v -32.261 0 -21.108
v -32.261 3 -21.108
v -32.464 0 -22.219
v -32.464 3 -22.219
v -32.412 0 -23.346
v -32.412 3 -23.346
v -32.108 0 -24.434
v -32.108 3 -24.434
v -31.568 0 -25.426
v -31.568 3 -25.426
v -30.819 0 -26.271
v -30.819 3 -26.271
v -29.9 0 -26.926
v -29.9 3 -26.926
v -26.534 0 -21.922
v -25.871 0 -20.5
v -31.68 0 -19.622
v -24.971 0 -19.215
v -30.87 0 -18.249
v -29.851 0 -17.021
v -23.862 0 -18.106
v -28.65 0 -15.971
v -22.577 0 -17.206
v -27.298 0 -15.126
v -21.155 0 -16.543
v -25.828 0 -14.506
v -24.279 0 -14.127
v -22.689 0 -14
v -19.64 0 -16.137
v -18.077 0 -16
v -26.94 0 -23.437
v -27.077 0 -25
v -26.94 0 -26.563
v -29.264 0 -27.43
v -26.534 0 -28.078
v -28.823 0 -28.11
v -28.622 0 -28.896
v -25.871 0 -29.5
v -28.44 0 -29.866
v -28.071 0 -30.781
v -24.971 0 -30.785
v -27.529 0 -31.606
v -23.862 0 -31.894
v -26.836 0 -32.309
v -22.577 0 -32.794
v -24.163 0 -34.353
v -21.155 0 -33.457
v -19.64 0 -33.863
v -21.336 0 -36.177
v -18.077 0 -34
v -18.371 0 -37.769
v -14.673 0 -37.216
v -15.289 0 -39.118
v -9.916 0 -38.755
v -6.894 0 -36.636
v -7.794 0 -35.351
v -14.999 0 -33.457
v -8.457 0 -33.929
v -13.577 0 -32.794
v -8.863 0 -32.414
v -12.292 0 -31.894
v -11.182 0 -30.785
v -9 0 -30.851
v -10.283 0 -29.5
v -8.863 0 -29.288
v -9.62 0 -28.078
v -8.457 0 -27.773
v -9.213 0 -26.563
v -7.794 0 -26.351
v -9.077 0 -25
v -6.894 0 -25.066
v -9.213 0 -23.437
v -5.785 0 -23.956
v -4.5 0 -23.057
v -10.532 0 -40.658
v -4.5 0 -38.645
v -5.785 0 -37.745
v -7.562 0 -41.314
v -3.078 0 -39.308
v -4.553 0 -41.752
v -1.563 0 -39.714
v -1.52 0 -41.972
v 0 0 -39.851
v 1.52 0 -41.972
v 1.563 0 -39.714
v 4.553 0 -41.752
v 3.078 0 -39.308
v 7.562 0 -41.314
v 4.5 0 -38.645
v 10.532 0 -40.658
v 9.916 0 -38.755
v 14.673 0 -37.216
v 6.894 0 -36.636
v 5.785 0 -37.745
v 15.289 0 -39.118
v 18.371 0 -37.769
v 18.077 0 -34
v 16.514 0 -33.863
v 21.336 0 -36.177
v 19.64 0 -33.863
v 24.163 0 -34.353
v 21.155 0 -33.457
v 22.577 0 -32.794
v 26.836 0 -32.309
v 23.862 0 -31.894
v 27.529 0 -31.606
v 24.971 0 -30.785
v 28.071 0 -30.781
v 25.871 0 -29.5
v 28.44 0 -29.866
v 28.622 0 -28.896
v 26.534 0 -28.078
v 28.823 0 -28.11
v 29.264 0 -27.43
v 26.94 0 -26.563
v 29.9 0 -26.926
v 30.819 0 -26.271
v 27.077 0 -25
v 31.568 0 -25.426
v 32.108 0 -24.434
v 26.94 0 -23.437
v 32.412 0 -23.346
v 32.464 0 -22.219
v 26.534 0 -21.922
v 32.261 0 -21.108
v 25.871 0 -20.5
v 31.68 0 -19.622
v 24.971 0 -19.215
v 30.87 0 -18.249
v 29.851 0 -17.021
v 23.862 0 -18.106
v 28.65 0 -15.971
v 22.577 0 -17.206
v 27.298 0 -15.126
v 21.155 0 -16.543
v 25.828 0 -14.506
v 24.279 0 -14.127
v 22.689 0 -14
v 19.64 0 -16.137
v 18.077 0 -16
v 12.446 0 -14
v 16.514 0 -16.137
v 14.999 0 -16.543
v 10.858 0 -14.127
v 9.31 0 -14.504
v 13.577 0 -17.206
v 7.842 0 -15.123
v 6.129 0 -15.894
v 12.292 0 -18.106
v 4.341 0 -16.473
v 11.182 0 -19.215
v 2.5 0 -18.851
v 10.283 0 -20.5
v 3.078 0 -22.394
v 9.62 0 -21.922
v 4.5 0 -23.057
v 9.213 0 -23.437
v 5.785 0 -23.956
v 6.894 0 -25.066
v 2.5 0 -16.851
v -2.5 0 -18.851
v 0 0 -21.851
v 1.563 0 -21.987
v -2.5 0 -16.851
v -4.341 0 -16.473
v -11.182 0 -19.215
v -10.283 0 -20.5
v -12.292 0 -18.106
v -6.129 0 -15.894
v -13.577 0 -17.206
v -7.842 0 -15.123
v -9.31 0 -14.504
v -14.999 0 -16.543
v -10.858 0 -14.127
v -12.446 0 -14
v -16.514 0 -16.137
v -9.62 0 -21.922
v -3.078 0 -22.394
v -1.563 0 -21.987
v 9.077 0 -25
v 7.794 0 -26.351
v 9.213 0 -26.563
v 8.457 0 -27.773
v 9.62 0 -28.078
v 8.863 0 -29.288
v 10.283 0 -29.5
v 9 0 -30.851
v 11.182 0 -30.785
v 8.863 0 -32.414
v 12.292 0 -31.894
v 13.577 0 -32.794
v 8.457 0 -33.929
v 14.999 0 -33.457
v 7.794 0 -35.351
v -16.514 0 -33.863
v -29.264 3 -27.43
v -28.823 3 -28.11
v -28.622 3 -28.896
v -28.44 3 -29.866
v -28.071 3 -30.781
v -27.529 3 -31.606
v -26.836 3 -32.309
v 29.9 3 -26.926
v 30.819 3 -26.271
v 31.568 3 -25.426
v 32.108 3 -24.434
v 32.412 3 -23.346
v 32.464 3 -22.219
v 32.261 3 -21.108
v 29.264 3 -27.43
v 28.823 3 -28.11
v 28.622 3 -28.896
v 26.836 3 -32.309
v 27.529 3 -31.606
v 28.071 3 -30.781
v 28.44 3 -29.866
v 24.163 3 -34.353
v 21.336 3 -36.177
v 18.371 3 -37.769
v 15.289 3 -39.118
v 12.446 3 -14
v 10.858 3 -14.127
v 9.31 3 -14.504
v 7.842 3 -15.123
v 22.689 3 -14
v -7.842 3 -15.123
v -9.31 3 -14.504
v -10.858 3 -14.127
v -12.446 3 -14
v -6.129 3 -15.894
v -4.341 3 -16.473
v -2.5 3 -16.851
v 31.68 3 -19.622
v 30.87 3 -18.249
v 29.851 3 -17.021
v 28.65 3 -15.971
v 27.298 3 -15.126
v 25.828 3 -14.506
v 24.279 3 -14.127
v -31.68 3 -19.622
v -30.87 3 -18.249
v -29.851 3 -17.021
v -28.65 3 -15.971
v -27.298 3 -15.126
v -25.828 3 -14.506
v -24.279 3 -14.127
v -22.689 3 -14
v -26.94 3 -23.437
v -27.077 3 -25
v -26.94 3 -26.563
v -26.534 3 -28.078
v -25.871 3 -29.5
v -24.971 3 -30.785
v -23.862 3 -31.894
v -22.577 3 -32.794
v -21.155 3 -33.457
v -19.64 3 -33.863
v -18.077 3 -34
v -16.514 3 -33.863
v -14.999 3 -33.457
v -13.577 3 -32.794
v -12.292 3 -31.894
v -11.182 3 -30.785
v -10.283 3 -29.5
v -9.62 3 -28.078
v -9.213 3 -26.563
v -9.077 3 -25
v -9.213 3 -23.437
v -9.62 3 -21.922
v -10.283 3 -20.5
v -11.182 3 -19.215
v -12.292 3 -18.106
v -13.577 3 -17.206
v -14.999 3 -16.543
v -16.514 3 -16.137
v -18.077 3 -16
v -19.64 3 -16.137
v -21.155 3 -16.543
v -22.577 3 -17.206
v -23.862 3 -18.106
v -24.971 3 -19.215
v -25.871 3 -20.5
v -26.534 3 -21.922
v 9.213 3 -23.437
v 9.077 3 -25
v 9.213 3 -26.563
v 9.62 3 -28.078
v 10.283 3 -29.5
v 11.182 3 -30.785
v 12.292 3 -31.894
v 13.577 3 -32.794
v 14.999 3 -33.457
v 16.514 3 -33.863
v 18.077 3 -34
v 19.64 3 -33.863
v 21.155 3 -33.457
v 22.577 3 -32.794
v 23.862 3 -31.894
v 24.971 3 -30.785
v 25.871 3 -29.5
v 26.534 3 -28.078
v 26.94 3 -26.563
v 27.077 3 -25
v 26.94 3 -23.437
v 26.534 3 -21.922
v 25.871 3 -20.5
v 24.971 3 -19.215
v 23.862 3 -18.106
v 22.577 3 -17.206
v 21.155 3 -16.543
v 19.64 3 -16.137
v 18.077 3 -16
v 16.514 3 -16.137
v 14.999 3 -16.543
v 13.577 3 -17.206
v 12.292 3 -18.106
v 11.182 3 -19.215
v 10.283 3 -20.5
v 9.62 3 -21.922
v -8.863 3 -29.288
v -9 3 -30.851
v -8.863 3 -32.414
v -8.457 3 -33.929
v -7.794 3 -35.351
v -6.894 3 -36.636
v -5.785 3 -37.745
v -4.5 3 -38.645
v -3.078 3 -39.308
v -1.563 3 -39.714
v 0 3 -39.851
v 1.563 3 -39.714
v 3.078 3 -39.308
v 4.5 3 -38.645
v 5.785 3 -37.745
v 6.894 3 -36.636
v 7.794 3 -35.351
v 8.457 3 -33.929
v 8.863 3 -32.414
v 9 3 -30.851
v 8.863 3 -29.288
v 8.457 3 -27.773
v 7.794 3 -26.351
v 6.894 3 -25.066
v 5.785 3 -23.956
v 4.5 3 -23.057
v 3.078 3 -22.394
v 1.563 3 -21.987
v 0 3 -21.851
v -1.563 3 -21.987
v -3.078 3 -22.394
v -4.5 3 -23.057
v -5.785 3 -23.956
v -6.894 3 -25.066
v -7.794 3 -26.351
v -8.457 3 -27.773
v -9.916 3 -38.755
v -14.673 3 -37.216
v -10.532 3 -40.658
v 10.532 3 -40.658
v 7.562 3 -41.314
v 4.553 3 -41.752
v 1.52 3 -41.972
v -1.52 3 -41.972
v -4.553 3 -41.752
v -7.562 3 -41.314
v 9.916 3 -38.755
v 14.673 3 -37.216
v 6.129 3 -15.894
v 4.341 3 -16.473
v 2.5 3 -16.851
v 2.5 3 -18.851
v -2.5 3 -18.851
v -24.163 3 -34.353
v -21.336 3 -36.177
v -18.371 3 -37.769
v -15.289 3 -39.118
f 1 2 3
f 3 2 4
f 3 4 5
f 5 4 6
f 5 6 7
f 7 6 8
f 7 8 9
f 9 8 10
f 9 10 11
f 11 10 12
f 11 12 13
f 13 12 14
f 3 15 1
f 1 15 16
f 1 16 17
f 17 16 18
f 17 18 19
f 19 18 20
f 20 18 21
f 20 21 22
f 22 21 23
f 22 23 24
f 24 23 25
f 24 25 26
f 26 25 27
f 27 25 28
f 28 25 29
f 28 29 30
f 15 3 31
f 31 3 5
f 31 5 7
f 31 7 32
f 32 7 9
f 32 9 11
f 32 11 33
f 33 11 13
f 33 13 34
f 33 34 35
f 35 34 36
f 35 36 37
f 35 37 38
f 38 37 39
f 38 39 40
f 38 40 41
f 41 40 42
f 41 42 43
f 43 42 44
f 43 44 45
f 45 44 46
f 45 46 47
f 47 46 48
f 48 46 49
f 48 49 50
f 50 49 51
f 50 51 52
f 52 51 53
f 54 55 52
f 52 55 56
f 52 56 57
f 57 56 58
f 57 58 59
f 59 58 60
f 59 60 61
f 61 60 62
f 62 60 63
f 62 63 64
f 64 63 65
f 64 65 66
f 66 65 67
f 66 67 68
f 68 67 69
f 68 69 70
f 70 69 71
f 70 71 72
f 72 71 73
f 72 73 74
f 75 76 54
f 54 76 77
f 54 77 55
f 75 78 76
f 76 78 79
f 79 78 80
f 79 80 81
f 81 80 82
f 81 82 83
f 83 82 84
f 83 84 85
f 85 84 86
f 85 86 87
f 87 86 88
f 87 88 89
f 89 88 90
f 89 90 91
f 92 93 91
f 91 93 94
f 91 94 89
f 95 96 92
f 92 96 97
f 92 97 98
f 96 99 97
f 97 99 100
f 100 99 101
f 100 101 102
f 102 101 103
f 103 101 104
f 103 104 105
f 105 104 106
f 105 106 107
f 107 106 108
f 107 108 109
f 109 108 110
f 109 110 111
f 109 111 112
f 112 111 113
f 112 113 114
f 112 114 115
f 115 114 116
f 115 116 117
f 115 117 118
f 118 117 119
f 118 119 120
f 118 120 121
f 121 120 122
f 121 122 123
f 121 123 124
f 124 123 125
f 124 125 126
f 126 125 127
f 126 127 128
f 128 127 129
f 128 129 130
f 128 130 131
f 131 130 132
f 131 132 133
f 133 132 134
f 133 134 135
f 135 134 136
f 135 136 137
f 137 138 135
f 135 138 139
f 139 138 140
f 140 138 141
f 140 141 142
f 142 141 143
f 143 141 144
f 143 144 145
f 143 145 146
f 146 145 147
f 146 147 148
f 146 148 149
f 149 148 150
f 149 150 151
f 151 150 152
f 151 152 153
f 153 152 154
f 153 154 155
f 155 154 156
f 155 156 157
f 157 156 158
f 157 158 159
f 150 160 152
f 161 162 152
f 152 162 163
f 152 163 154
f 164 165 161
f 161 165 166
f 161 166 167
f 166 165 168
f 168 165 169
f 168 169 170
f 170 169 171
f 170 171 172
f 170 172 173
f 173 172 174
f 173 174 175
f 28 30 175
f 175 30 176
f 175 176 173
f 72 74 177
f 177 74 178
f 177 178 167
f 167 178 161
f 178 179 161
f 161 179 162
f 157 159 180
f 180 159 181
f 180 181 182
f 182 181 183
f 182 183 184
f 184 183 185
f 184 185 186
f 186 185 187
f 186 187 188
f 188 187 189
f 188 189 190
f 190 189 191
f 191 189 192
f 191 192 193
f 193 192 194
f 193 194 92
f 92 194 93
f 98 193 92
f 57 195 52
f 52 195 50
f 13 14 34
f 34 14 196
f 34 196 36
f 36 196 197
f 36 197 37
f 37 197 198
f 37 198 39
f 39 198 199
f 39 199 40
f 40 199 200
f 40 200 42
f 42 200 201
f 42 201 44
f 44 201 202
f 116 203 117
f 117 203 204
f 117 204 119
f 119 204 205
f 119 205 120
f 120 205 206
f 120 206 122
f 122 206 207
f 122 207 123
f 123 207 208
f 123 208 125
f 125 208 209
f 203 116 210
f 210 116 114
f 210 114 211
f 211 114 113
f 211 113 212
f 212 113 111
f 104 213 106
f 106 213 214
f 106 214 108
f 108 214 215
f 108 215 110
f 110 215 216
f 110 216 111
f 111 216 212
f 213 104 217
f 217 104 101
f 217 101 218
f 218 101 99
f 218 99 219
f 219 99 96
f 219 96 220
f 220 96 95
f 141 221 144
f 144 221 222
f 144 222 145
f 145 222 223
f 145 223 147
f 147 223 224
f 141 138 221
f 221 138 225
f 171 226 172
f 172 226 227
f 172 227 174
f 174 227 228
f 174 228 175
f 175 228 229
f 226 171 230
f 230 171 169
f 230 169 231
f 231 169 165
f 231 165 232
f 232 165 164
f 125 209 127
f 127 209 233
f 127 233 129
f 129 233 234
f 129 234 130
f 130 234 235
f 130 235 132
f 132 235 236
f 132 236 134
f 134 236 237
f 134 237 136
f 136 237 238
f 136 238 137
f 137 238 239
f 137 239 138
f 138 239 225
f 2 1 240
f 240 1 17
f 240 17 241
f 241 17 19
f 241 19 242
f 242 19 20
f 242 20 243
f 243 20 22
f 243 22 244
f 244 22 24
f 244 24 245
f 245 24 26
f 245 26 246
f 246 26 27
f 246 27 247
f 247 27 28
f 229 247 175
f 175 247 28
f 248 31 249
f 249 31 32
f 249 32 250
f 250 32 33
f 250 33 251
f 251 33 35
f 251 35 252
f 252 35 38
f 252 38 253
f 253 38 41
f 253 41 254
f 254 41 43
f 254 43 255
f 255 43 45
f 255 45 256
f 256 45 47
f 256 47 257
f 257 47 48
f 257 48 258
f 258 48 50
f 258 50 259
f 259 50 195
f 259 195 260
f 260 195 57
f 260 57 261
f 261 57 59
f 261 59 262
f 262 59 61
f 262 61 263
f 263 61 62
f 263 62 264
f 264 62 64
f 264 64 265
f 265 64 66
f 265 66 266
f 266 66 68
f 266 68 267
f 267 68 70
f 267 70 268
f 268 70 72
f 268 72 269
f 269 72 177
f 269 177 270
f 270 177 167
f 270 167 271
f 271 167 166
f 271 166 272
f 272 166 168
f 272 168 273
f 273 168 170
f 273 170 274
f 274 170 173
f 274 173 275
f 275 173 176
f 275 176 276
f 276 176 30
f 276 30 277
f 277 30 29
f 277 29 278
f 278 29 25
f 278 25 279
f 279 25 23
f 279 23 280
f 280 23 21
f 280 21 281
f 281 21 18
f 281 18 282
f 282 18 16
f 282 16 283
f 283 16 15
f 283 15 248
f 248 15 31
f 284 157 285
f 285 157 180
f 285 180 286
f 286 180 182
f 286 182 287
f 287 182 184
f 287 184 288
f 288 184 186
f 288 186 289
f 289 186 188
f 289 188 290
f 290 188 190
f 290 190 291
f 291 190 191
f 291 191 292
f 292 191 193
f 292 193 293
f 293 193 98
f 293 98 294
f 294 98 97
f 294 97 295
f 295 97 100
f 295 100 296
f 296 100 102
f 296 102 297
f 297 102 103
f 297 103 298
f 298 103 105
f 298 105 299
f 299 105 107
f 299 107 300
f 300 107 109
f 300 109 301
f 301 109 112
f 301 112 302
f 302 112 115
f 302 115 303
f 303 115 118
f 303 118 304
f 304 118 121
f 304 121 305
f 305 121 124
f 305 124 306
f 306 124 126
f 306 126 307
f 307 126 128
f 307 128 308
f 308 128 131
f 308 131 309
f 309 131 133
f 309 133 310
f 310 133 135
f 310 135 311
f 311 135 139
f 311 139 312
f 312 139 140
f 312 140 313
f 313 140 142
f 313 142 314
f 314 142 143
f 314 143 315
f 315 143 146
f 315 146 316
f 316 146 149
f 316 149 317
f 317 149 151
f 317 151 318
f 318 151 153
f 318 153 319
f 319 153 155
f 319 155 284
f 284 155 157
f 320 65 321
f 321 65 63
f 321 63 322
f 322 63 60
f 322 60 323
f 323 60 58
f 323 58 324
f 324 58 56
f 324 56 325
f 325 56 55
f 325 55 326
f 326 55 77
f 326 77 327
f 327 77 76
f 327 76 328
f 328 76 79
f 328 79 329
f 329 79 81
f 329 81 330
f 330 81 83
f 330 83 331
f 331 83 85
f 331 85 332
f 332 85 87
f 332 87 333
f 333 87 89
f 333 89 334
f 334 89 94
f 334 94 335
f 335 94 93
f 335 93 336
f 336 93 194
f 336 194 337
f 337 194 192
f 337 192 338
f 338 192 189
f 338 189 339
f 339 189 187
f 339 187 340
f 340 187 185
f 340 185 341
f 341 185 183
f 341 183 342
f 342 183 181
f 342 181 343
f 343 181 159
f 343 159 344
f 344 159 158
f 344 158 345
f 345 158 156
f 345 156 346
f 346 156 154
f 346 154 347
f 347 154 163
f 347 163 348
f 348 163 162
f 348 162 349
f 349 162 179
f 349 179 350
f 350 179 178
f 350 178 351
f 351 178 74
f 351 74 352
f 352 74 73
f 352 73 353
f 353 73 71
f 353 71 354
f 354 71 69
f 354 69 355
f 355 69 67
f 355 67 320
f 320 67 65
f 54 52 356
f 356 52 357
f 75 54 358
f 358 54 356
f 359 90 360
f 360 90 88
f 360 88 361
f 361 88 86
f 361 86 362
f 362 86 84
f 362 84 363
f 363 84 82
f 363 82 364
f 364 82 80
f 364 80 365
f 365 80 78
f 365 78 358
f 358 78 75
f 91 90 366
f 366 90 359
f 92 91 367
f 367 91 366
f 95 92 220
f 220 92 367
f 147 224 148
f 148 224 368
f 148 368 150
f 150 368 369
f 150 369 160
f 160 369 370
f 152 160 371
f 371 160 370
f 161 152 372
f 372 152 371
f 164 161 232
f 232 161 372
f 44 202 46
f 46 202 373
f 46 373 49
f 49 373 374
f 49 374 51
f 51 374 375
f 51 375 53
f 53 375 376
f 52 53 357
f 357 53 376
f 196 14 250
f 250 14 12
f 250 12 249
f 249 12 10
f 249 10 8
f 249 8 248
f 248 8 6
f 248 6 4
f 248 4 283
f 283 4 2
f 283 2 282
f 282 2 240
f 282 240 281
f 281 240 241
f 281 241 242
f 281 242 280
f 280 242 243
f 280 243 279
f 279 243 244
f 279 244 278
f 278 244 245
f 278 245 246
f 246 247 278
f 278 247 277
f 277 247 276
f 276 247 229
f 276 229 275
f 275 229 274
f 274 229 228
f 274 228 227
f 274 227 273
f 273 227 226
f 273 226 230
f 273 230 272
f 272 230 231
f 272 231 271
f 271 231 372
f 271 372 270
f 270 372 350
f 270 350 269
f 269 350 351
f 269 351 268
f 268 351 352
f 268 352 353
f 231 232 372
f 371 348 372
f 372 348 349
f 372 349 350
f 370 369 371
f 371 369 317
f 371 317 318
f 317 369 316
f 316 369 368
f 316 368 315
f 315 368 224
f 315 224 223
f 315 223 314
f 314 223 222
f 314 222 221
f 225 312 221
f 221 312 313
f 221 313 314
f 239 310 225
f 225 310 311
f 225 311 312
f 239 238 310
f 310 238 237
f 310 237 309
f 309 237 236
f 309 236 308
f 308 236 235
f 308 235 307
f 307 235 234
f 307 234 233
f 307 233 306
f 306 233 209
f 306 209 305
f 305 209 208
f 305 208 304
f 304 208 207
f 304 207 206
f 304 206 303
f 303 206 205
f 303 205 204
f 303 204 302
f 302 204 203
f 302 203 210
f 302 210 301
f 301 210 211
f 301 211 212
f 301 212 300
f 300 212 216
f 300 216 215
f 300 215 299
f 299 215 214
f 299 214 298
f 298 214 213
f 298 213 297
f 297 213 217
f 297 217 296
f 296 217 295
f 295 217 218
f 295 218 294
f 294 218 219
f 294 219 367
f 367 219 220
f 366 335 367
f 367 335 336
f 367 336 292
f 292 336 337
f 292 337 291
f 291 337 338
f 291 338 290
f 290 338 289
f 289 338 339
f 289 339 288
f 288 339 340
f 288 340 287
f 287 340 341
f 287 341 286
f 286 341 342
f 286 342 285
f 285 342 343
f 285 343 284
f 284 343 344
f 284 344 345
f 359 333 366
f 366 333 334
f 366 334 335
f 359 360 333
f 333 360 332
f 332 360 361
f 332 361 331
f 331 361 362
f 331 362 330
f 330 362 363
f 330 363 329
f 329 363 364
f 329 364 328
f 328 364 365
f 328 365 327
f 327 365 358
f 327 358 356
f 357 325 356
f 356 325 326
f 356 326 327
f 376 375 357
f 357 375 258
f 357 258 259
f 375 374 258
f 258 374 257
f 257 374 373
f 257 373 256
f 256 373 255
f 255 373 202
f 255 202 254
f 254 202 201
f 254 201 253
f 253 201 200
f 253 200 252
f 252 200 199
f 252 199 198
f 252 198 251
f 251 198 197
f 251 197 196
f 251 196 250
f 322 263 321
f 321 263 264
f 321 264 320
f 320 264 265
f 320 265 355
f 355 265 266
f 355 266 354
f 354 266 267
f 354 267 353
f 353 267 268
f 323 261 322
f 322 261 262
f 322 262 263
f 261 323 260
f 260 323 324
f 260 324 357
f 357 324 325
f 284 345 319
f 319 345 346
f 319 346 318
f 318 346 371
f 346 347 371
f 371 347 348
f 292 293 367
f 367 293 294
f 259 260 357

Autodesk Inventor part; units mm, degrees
ref_plane "YZ Plane" through (0, 0, 0) normal (1, 0, 0) x (0, 1, 0)
ref_plane "XZ Plane" through (0, 0, 0) normal (0, 1, 0) x (-1, 0, 0)
ref_plane "XY Plane" through (0, 0, 0) normal (0, 0, 1) x (1, 0, 0)
sketch "Эскиз1" plane through (0, 0, 0) normal (0, 1, 0) x (-1, 0, 0)
  circle A0 centre (0, 0) radius 42
  line L0 (0, -42) -> (0, 42) construction
  circle A1 centre (18.0767, -25) radius 9
  circle A2 centre (-18.0767, -25) radius 9
  line L1 (39.598, -14) -> (-39.598, -14)
  circle A3 centre (0, -30.8507) radius 9
  circle A4 centre (0, 0) radius 30.8507 construction
  line L2 (0, 0) -> (12.9332, -39.9591) construction
  line L3 (0, 0) -> (-12.9332, -39.9591) construction
  line L4 (9.9159, -38.7553) -> (14.673, -37.2156)
  line L5 (14.673, -37.2156) -> (15.2888, -39.1184)
  line L6 (15.2888, -39.1184) -> (10.5318, -40.6581)
  line L7 (10.5318, -40.6581) -> (9.9159, -38.7553)
  line L8 (9.9159, -38.7553) -> (15.2888, -39.1184) construction
  line L9 (14.673, -37.2156) -> (10.5318, -40.6581) construction
  line L10 (-14.673, -37.2156) -> (-9.9159, -38.7553)
  line L11 (-9.9159, -38.7553) -> (-10.5318, -40.6581)
  line L12 (-10.5318, -40.6581) -> (-15.2888, -39.1184)
  line L13 (-15.2888, -39.1184) -> (-14.673, -37.2156)
  line L14 (-14.673, -37.2156) -> (-10.5318, -40.6581) construction
  line L15 (-9.9159, -38.7553) -> (-15.2888, -39.1184) construction
  line L16 (-2.5, -16.8507) -> (2.5, -16.8507)
  line L17 (2.5, -16.8507) -> (2.5, -18.8507)
  line L18 (2.5, -18.8507) -> (-2.5, -18.8507)
  line L19 (-2.5, -18.8507) -> (-2.5, -16.8507)
  line L20 (-2.5, -16.8507) -> (2.5, -18.8507) construction
  line L21 (2.5, -16.8507) -> (-2.5, -18.8507) construction
  circle A5 centre (0, 0) radius 17.0352
  circle A6 centre (0, 2) radius 44 construction
  circle A7 centre (31.1127, -29.1127) radius 2.5
  circle A8 centre (-31.1127, -29.1127) radius 2.5
  point P0 (12.6024, -38.9369)
  point P1 (-12.6024, -38.9369)
  point P2 (0, -17.8507)
  point P3 (9.7056, -14)
  point P4 (2.5, -16.8507)
  point P5 (-9.7056, -14)
  point P6 (-15.2888, -39.1184)
  point P7 (10.5318, -40.6581)
  point P8 (28.9734, -30.4063)
  point P9 (32.2615, -26.8923)
  point P10 (-32.2615, -26.8923)
  point P11 (-28.9734, -30.4063)
  dimension "d0" = 84
  dimension "d5" = 18
  dimension "d7" = 14
  dimension "d8" = 11
  dimension "d9" = 19
  dimension "d13" = 35.87
  dimension "d14" = 17.935
  dimension "d15" = 2
  dimension "d16" = 2
  dimension "d17" = 5
  dimension "d18" = 5
  dimension "d19" = 5
  dimension "d20" = 2
  dimension "d21" = 13
  dimension "d26" = 2
  dimension "d27" = 88
  dimension "d28" = 5
  dimension "d29" = 90
extrude "Выдавливание2" add sketch "Эскиз1" along normal blind 3 contours L1 A5 L19 L18 L17 A0 A7 L5 L4 L7 L11 L10 L13 A8
fillet "Сопряжение1" radius 10 2 edges at (-39.598, 1.5, -14) (39.598, 1.5, -14)
fillet "Сопряжение2" radius 10 2 edges at (-9.7056, 1.5, -14) (9.7056, 1.5, -14)
fillet "Сопряжение3" radius 5 4 edges at (28.9734, 1.5, -30.4063) (32.2615, 1.5, -26.8923) (-28.9734, 1.5, -30.4063) (-32.2615, 1.5, -26.8923)
equation "\"d14\" = 0.5 * d13"
properties part number "Крепление АКБ" material "Пластик АБС"
